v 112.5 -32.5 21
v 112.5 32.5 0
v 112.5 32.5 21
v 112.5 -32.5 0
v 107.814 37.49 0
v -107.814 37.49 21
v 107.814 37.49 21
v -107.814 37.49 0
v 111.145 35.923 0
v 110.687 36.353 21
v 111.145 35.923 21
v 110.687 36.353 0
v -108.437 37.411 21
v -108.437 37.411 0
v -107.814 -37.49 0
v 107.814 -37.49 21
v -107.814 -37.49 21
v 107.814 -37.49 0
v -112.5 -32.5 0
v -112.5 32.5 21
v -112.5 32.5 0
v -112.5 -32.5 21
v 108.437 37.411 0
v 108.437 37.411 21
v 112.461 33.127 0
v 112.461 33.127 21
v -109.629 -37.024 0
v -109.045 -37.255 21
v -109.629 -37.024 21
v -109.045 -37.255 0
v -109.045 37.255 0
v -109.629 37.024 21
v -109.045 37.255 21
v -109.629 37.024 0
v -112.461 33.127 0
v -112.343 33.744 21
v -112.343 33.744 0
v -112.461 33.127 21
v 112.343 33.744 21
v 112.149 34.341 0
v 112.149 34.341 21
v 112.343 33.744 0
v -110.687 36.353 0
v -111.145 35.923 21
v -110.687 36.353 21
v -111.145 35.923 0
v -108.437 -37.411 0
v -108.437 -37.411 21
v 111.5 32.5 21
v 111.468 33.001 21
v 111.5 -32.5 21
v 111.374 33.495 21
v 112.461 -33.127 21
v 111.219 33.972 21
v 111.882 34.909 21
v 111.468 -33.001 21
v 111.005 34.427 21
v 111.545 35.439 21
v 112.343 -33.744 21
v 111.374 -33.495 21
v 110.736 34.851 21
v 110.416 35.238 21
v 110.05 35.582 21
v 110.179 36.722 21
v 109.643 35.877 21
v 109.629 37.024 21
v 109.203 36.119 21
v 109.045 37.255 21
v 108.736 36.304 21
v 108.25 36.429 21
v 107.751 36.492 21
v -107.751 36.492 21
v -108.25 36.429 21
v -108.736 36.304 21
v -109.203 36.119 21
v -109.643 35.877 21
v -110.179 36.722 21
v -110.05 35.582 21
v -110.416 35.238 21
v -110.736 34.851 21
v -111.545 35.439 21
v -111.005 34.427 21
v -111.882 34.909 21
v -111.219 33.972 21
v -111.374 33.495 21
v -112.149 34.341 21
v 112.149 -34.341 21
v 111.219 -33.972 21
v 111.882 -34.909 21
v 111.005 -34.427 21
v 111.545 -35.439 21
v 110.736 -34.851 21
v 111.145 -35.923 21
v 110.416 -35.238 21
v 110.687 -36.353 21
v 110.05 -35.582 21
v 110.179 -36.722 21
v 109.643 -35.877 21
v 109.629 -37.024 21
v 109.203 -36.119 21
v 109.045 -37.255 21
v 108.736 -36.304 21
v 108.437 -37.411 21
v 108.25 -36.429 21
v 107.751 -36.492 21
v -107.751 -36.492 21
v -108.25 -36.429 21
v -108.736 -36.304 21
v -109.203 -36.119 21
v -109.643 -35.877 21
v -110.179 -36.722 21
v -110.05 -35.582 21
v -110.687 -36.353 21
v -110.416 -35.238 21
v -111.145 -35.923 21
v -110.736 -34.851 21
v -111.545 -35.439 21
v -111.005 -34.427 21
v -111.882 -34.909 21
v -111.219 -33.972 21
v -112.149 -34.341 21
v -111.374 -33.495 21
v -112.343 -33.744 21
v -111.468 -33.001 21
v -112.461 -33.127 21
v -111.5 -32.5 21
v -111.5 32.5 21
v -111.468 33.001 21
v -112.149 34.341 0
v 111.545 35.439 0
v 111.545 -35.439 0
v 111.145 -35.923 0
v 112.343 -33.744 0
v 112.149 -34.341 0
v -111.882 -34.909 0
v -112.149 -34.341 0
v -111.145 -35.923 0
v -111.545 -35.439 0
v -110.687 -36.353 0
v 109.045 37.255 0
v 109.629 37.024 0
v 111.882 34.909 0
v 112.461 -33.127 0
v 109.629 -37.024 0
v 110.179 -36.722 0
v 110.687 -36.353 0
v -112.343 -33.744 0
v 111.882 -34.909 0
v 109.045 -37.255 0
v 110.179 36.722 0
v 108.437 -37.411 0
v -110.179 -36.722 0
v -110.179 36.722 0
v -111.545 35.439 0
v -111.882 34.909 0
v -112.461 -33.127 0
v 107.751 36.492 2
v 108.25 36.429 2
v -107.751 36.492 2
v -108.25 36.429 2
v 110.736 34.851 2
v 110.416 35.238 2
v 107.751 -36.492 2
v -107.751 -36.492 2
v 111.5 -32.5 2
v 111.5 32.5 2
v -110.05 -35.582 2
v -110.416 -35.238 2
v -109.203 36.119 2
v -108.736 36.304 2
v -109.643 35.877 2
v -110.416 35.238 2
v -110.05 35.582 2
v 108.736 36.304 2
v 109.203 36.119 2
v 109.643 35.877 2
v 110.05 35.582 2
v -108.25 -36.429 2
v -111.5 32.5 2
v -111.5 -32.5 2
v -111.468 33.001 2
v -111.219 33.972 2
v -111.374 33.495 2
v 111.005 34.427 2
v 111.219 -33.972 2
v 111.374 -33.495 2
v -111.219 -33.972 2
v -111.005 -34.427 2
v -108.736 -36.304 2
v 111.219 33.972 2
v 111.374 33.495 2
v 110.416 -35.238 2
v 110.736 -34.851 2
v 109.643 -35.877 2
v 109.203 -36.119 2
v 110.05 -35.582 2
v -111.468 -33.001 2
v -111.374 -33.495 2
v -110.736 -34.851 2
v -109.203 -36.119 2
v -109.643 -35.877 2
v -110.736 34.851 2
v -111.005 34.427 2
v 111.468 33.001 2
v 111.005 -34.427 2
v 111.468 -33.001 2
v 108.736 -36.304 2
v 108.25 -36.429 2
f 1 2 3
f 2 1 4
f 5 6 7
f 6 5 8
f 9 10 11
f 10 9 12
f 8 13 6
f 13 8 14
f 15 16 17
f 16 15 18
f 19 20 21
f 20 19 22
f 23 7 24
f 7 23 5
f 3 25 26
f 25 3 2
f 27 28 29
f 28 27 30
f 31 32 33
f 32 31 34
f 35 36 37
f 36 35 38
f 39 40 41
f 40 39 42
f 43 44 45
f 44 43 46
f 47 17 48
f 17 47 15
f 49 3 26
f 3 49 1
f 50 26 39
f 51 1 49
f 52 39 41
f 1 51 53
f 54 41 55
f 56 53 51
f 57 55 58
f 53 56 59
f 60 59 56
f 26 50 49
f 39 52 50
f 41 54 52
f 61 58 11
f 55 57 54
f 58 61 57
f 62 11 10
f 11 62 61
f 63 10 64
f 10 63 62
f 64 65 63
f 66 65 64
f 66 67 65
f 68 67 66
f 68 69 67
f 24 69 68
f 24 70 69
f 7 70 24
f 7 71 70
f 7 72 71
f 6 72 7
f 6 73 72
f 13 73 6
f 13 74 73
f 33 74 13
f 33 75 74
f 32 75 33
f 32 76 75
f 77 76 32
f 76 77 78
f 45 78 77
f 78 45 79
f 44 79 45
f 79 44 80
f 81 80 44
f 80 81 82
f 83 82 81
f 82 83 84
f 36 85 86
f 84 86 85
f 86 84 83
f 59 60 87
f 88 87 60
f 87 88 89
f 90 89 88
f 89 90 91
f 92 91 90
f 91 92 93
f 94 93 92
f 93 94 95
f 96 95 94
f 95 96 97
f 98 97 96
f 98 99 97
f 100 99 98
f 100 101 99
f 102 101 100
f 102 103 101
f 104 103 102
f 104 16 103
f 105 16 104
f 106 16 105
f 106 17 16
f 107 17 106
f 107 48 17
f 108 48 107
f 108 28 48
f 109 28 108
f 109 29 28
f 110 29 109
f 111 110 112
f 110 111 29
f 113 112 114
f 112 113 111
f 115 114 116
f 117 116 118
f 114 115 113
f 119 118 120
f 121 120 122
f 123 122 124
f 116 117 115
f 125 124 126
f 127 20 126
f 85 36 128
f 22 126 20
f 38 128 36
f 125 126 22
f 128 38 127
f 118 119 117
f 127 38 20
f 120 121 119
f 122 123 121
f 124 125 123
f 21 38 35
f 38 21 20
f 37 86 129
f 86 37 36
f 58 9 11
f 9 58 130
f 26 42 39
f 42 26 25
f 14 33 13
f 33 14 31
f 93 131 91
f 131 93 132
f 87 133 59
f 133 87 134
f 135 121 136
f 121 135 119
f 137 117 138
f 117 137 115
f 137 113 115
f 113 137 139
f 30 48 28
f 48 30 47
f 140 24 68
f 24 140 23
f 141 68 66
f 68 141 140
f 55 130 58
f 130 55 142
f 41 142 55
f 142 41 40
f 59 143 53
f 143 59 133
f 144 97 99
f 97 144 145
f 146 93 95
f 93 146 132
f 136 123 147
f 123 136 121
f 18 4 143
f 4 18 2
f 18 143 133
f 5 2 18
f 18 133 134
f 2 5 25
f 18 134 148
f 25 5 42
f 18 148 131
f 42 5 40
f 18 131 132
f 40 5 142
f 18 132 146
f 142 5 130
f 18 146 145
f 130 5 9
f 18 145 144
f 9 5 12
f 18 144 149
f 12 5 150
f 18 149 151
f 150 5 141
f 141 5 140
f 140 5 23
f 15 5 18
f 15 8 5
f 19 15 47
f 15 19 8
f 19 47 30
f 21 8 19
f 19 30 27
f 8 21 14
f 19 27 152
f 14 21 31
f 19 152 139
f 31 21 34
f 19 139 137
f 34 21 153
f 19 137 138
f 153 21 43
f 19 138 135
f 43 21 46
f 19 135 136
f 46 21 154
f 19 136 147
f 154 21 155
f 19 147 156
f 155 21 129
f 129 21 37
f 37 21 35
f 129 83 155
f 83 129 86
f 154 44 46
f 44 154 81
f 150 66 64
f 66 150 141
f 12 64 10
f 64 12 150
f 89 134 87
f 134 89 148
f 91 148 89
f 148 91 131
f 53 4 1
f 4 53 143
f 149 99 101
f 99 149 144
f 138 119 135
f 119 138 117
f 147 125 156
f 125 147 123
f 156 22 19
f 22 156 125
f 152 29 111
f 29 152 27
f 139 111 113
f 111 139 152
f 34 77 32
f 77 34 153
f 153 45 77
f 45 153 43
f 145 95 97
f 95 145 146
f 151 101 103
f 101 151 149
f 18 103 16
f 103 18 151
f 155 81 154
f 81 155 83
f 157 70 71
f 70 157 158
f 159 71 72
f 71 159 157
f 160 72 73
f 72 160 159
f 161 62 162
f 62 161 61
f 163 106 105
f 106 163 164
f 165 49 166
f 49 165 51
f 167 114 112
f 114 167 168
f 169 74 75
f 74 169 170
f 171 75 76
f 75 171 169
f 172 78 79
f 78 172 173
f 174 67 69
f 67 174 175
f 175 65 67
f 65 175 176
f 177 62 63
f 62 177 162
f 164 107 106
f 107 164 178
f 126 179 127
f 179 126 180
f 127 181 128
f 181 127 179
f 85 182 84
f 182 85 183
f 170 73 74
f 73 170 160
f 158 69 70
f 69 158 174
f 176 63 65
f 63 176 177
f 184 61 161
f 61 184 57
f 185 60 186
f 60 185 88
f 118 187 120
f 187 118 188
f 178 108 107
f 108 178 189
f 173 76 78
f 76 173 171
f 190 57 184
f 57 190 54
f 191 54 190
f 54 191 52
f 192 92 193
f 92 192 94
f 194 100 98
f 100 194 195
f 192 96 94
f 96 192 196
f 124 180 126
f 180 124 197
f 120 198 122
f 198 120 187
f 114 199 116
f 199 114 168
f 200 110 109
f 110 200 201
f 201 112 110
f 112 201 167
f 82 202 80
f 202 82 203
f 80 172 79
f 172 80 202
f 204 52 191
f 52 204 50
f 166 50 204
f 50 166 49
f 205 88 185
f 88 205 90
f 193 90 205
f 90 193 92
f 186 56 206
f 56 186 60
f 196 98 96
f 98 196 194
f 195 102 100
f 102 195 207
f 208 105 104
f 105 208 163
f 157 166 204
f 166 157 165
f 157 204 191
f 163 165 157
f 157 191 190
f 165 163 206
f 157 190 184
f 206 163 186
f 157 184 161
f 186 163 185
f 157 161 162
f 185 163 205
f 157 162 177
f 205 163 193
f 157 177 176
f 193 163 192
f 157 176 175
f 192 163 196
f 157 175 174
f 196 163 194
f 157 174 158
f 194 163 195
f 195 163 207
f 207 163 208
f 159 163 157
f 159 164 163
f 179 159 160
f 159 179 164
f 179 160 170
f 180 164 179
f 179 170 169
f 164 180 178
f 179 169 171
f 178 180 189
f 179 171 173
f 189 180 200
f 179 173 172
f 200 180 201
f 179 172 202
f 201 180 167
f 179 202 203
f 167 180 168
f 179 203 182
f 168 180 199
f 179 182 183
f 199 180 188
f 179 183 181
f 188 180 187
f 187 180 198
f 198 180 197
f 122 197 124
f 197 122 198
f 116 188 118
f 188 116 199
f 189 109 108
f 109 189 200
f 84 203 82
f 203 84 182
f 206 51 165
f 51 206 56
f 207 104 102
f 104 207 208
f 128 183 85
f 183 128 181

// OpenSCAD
$fn = 50;


difference() {
	union() {
		hull() {
			translate(v = [-107.5000000000, 32.5000000000, 0]) {
				cylinder(h = 21, r = 5);
			}
			translate(v = [107.5000000000, 32.5000000000, 0]) {
				cylinder(h = 21, r = 5);
			}
			translate(v = [-107.5000000000, -32.5000000000, 0]) {
				cylinder(h = 21, r = 5);
			}
			translate(v = [107.5000000000, -32.5000000000, 0]) {
				cylinder(h = 21, r = 5);
			}
		}
	}
	union() {
		translate(v = [0, 0, 2]) {
			hull() {
				translate(v = [-107.5000000000, 32.5000000000, 0]) {
					cylinder(h = 19, r = 4);
				}
				translate(v = [107.5000000000, 32.5000000000, 0]) {
					cylinder(h = 19, r = 4);
				}
				translate(v = [-107.5000000000, -32.5000000000, 0]) {
					cylinder(h = 19, r = 4);
				}
				translate(v = [107.5000000000, -32.5000000000, 0]) {
					cylinder(h = 19, r = 4);
				}
			}
		}
	}
}
